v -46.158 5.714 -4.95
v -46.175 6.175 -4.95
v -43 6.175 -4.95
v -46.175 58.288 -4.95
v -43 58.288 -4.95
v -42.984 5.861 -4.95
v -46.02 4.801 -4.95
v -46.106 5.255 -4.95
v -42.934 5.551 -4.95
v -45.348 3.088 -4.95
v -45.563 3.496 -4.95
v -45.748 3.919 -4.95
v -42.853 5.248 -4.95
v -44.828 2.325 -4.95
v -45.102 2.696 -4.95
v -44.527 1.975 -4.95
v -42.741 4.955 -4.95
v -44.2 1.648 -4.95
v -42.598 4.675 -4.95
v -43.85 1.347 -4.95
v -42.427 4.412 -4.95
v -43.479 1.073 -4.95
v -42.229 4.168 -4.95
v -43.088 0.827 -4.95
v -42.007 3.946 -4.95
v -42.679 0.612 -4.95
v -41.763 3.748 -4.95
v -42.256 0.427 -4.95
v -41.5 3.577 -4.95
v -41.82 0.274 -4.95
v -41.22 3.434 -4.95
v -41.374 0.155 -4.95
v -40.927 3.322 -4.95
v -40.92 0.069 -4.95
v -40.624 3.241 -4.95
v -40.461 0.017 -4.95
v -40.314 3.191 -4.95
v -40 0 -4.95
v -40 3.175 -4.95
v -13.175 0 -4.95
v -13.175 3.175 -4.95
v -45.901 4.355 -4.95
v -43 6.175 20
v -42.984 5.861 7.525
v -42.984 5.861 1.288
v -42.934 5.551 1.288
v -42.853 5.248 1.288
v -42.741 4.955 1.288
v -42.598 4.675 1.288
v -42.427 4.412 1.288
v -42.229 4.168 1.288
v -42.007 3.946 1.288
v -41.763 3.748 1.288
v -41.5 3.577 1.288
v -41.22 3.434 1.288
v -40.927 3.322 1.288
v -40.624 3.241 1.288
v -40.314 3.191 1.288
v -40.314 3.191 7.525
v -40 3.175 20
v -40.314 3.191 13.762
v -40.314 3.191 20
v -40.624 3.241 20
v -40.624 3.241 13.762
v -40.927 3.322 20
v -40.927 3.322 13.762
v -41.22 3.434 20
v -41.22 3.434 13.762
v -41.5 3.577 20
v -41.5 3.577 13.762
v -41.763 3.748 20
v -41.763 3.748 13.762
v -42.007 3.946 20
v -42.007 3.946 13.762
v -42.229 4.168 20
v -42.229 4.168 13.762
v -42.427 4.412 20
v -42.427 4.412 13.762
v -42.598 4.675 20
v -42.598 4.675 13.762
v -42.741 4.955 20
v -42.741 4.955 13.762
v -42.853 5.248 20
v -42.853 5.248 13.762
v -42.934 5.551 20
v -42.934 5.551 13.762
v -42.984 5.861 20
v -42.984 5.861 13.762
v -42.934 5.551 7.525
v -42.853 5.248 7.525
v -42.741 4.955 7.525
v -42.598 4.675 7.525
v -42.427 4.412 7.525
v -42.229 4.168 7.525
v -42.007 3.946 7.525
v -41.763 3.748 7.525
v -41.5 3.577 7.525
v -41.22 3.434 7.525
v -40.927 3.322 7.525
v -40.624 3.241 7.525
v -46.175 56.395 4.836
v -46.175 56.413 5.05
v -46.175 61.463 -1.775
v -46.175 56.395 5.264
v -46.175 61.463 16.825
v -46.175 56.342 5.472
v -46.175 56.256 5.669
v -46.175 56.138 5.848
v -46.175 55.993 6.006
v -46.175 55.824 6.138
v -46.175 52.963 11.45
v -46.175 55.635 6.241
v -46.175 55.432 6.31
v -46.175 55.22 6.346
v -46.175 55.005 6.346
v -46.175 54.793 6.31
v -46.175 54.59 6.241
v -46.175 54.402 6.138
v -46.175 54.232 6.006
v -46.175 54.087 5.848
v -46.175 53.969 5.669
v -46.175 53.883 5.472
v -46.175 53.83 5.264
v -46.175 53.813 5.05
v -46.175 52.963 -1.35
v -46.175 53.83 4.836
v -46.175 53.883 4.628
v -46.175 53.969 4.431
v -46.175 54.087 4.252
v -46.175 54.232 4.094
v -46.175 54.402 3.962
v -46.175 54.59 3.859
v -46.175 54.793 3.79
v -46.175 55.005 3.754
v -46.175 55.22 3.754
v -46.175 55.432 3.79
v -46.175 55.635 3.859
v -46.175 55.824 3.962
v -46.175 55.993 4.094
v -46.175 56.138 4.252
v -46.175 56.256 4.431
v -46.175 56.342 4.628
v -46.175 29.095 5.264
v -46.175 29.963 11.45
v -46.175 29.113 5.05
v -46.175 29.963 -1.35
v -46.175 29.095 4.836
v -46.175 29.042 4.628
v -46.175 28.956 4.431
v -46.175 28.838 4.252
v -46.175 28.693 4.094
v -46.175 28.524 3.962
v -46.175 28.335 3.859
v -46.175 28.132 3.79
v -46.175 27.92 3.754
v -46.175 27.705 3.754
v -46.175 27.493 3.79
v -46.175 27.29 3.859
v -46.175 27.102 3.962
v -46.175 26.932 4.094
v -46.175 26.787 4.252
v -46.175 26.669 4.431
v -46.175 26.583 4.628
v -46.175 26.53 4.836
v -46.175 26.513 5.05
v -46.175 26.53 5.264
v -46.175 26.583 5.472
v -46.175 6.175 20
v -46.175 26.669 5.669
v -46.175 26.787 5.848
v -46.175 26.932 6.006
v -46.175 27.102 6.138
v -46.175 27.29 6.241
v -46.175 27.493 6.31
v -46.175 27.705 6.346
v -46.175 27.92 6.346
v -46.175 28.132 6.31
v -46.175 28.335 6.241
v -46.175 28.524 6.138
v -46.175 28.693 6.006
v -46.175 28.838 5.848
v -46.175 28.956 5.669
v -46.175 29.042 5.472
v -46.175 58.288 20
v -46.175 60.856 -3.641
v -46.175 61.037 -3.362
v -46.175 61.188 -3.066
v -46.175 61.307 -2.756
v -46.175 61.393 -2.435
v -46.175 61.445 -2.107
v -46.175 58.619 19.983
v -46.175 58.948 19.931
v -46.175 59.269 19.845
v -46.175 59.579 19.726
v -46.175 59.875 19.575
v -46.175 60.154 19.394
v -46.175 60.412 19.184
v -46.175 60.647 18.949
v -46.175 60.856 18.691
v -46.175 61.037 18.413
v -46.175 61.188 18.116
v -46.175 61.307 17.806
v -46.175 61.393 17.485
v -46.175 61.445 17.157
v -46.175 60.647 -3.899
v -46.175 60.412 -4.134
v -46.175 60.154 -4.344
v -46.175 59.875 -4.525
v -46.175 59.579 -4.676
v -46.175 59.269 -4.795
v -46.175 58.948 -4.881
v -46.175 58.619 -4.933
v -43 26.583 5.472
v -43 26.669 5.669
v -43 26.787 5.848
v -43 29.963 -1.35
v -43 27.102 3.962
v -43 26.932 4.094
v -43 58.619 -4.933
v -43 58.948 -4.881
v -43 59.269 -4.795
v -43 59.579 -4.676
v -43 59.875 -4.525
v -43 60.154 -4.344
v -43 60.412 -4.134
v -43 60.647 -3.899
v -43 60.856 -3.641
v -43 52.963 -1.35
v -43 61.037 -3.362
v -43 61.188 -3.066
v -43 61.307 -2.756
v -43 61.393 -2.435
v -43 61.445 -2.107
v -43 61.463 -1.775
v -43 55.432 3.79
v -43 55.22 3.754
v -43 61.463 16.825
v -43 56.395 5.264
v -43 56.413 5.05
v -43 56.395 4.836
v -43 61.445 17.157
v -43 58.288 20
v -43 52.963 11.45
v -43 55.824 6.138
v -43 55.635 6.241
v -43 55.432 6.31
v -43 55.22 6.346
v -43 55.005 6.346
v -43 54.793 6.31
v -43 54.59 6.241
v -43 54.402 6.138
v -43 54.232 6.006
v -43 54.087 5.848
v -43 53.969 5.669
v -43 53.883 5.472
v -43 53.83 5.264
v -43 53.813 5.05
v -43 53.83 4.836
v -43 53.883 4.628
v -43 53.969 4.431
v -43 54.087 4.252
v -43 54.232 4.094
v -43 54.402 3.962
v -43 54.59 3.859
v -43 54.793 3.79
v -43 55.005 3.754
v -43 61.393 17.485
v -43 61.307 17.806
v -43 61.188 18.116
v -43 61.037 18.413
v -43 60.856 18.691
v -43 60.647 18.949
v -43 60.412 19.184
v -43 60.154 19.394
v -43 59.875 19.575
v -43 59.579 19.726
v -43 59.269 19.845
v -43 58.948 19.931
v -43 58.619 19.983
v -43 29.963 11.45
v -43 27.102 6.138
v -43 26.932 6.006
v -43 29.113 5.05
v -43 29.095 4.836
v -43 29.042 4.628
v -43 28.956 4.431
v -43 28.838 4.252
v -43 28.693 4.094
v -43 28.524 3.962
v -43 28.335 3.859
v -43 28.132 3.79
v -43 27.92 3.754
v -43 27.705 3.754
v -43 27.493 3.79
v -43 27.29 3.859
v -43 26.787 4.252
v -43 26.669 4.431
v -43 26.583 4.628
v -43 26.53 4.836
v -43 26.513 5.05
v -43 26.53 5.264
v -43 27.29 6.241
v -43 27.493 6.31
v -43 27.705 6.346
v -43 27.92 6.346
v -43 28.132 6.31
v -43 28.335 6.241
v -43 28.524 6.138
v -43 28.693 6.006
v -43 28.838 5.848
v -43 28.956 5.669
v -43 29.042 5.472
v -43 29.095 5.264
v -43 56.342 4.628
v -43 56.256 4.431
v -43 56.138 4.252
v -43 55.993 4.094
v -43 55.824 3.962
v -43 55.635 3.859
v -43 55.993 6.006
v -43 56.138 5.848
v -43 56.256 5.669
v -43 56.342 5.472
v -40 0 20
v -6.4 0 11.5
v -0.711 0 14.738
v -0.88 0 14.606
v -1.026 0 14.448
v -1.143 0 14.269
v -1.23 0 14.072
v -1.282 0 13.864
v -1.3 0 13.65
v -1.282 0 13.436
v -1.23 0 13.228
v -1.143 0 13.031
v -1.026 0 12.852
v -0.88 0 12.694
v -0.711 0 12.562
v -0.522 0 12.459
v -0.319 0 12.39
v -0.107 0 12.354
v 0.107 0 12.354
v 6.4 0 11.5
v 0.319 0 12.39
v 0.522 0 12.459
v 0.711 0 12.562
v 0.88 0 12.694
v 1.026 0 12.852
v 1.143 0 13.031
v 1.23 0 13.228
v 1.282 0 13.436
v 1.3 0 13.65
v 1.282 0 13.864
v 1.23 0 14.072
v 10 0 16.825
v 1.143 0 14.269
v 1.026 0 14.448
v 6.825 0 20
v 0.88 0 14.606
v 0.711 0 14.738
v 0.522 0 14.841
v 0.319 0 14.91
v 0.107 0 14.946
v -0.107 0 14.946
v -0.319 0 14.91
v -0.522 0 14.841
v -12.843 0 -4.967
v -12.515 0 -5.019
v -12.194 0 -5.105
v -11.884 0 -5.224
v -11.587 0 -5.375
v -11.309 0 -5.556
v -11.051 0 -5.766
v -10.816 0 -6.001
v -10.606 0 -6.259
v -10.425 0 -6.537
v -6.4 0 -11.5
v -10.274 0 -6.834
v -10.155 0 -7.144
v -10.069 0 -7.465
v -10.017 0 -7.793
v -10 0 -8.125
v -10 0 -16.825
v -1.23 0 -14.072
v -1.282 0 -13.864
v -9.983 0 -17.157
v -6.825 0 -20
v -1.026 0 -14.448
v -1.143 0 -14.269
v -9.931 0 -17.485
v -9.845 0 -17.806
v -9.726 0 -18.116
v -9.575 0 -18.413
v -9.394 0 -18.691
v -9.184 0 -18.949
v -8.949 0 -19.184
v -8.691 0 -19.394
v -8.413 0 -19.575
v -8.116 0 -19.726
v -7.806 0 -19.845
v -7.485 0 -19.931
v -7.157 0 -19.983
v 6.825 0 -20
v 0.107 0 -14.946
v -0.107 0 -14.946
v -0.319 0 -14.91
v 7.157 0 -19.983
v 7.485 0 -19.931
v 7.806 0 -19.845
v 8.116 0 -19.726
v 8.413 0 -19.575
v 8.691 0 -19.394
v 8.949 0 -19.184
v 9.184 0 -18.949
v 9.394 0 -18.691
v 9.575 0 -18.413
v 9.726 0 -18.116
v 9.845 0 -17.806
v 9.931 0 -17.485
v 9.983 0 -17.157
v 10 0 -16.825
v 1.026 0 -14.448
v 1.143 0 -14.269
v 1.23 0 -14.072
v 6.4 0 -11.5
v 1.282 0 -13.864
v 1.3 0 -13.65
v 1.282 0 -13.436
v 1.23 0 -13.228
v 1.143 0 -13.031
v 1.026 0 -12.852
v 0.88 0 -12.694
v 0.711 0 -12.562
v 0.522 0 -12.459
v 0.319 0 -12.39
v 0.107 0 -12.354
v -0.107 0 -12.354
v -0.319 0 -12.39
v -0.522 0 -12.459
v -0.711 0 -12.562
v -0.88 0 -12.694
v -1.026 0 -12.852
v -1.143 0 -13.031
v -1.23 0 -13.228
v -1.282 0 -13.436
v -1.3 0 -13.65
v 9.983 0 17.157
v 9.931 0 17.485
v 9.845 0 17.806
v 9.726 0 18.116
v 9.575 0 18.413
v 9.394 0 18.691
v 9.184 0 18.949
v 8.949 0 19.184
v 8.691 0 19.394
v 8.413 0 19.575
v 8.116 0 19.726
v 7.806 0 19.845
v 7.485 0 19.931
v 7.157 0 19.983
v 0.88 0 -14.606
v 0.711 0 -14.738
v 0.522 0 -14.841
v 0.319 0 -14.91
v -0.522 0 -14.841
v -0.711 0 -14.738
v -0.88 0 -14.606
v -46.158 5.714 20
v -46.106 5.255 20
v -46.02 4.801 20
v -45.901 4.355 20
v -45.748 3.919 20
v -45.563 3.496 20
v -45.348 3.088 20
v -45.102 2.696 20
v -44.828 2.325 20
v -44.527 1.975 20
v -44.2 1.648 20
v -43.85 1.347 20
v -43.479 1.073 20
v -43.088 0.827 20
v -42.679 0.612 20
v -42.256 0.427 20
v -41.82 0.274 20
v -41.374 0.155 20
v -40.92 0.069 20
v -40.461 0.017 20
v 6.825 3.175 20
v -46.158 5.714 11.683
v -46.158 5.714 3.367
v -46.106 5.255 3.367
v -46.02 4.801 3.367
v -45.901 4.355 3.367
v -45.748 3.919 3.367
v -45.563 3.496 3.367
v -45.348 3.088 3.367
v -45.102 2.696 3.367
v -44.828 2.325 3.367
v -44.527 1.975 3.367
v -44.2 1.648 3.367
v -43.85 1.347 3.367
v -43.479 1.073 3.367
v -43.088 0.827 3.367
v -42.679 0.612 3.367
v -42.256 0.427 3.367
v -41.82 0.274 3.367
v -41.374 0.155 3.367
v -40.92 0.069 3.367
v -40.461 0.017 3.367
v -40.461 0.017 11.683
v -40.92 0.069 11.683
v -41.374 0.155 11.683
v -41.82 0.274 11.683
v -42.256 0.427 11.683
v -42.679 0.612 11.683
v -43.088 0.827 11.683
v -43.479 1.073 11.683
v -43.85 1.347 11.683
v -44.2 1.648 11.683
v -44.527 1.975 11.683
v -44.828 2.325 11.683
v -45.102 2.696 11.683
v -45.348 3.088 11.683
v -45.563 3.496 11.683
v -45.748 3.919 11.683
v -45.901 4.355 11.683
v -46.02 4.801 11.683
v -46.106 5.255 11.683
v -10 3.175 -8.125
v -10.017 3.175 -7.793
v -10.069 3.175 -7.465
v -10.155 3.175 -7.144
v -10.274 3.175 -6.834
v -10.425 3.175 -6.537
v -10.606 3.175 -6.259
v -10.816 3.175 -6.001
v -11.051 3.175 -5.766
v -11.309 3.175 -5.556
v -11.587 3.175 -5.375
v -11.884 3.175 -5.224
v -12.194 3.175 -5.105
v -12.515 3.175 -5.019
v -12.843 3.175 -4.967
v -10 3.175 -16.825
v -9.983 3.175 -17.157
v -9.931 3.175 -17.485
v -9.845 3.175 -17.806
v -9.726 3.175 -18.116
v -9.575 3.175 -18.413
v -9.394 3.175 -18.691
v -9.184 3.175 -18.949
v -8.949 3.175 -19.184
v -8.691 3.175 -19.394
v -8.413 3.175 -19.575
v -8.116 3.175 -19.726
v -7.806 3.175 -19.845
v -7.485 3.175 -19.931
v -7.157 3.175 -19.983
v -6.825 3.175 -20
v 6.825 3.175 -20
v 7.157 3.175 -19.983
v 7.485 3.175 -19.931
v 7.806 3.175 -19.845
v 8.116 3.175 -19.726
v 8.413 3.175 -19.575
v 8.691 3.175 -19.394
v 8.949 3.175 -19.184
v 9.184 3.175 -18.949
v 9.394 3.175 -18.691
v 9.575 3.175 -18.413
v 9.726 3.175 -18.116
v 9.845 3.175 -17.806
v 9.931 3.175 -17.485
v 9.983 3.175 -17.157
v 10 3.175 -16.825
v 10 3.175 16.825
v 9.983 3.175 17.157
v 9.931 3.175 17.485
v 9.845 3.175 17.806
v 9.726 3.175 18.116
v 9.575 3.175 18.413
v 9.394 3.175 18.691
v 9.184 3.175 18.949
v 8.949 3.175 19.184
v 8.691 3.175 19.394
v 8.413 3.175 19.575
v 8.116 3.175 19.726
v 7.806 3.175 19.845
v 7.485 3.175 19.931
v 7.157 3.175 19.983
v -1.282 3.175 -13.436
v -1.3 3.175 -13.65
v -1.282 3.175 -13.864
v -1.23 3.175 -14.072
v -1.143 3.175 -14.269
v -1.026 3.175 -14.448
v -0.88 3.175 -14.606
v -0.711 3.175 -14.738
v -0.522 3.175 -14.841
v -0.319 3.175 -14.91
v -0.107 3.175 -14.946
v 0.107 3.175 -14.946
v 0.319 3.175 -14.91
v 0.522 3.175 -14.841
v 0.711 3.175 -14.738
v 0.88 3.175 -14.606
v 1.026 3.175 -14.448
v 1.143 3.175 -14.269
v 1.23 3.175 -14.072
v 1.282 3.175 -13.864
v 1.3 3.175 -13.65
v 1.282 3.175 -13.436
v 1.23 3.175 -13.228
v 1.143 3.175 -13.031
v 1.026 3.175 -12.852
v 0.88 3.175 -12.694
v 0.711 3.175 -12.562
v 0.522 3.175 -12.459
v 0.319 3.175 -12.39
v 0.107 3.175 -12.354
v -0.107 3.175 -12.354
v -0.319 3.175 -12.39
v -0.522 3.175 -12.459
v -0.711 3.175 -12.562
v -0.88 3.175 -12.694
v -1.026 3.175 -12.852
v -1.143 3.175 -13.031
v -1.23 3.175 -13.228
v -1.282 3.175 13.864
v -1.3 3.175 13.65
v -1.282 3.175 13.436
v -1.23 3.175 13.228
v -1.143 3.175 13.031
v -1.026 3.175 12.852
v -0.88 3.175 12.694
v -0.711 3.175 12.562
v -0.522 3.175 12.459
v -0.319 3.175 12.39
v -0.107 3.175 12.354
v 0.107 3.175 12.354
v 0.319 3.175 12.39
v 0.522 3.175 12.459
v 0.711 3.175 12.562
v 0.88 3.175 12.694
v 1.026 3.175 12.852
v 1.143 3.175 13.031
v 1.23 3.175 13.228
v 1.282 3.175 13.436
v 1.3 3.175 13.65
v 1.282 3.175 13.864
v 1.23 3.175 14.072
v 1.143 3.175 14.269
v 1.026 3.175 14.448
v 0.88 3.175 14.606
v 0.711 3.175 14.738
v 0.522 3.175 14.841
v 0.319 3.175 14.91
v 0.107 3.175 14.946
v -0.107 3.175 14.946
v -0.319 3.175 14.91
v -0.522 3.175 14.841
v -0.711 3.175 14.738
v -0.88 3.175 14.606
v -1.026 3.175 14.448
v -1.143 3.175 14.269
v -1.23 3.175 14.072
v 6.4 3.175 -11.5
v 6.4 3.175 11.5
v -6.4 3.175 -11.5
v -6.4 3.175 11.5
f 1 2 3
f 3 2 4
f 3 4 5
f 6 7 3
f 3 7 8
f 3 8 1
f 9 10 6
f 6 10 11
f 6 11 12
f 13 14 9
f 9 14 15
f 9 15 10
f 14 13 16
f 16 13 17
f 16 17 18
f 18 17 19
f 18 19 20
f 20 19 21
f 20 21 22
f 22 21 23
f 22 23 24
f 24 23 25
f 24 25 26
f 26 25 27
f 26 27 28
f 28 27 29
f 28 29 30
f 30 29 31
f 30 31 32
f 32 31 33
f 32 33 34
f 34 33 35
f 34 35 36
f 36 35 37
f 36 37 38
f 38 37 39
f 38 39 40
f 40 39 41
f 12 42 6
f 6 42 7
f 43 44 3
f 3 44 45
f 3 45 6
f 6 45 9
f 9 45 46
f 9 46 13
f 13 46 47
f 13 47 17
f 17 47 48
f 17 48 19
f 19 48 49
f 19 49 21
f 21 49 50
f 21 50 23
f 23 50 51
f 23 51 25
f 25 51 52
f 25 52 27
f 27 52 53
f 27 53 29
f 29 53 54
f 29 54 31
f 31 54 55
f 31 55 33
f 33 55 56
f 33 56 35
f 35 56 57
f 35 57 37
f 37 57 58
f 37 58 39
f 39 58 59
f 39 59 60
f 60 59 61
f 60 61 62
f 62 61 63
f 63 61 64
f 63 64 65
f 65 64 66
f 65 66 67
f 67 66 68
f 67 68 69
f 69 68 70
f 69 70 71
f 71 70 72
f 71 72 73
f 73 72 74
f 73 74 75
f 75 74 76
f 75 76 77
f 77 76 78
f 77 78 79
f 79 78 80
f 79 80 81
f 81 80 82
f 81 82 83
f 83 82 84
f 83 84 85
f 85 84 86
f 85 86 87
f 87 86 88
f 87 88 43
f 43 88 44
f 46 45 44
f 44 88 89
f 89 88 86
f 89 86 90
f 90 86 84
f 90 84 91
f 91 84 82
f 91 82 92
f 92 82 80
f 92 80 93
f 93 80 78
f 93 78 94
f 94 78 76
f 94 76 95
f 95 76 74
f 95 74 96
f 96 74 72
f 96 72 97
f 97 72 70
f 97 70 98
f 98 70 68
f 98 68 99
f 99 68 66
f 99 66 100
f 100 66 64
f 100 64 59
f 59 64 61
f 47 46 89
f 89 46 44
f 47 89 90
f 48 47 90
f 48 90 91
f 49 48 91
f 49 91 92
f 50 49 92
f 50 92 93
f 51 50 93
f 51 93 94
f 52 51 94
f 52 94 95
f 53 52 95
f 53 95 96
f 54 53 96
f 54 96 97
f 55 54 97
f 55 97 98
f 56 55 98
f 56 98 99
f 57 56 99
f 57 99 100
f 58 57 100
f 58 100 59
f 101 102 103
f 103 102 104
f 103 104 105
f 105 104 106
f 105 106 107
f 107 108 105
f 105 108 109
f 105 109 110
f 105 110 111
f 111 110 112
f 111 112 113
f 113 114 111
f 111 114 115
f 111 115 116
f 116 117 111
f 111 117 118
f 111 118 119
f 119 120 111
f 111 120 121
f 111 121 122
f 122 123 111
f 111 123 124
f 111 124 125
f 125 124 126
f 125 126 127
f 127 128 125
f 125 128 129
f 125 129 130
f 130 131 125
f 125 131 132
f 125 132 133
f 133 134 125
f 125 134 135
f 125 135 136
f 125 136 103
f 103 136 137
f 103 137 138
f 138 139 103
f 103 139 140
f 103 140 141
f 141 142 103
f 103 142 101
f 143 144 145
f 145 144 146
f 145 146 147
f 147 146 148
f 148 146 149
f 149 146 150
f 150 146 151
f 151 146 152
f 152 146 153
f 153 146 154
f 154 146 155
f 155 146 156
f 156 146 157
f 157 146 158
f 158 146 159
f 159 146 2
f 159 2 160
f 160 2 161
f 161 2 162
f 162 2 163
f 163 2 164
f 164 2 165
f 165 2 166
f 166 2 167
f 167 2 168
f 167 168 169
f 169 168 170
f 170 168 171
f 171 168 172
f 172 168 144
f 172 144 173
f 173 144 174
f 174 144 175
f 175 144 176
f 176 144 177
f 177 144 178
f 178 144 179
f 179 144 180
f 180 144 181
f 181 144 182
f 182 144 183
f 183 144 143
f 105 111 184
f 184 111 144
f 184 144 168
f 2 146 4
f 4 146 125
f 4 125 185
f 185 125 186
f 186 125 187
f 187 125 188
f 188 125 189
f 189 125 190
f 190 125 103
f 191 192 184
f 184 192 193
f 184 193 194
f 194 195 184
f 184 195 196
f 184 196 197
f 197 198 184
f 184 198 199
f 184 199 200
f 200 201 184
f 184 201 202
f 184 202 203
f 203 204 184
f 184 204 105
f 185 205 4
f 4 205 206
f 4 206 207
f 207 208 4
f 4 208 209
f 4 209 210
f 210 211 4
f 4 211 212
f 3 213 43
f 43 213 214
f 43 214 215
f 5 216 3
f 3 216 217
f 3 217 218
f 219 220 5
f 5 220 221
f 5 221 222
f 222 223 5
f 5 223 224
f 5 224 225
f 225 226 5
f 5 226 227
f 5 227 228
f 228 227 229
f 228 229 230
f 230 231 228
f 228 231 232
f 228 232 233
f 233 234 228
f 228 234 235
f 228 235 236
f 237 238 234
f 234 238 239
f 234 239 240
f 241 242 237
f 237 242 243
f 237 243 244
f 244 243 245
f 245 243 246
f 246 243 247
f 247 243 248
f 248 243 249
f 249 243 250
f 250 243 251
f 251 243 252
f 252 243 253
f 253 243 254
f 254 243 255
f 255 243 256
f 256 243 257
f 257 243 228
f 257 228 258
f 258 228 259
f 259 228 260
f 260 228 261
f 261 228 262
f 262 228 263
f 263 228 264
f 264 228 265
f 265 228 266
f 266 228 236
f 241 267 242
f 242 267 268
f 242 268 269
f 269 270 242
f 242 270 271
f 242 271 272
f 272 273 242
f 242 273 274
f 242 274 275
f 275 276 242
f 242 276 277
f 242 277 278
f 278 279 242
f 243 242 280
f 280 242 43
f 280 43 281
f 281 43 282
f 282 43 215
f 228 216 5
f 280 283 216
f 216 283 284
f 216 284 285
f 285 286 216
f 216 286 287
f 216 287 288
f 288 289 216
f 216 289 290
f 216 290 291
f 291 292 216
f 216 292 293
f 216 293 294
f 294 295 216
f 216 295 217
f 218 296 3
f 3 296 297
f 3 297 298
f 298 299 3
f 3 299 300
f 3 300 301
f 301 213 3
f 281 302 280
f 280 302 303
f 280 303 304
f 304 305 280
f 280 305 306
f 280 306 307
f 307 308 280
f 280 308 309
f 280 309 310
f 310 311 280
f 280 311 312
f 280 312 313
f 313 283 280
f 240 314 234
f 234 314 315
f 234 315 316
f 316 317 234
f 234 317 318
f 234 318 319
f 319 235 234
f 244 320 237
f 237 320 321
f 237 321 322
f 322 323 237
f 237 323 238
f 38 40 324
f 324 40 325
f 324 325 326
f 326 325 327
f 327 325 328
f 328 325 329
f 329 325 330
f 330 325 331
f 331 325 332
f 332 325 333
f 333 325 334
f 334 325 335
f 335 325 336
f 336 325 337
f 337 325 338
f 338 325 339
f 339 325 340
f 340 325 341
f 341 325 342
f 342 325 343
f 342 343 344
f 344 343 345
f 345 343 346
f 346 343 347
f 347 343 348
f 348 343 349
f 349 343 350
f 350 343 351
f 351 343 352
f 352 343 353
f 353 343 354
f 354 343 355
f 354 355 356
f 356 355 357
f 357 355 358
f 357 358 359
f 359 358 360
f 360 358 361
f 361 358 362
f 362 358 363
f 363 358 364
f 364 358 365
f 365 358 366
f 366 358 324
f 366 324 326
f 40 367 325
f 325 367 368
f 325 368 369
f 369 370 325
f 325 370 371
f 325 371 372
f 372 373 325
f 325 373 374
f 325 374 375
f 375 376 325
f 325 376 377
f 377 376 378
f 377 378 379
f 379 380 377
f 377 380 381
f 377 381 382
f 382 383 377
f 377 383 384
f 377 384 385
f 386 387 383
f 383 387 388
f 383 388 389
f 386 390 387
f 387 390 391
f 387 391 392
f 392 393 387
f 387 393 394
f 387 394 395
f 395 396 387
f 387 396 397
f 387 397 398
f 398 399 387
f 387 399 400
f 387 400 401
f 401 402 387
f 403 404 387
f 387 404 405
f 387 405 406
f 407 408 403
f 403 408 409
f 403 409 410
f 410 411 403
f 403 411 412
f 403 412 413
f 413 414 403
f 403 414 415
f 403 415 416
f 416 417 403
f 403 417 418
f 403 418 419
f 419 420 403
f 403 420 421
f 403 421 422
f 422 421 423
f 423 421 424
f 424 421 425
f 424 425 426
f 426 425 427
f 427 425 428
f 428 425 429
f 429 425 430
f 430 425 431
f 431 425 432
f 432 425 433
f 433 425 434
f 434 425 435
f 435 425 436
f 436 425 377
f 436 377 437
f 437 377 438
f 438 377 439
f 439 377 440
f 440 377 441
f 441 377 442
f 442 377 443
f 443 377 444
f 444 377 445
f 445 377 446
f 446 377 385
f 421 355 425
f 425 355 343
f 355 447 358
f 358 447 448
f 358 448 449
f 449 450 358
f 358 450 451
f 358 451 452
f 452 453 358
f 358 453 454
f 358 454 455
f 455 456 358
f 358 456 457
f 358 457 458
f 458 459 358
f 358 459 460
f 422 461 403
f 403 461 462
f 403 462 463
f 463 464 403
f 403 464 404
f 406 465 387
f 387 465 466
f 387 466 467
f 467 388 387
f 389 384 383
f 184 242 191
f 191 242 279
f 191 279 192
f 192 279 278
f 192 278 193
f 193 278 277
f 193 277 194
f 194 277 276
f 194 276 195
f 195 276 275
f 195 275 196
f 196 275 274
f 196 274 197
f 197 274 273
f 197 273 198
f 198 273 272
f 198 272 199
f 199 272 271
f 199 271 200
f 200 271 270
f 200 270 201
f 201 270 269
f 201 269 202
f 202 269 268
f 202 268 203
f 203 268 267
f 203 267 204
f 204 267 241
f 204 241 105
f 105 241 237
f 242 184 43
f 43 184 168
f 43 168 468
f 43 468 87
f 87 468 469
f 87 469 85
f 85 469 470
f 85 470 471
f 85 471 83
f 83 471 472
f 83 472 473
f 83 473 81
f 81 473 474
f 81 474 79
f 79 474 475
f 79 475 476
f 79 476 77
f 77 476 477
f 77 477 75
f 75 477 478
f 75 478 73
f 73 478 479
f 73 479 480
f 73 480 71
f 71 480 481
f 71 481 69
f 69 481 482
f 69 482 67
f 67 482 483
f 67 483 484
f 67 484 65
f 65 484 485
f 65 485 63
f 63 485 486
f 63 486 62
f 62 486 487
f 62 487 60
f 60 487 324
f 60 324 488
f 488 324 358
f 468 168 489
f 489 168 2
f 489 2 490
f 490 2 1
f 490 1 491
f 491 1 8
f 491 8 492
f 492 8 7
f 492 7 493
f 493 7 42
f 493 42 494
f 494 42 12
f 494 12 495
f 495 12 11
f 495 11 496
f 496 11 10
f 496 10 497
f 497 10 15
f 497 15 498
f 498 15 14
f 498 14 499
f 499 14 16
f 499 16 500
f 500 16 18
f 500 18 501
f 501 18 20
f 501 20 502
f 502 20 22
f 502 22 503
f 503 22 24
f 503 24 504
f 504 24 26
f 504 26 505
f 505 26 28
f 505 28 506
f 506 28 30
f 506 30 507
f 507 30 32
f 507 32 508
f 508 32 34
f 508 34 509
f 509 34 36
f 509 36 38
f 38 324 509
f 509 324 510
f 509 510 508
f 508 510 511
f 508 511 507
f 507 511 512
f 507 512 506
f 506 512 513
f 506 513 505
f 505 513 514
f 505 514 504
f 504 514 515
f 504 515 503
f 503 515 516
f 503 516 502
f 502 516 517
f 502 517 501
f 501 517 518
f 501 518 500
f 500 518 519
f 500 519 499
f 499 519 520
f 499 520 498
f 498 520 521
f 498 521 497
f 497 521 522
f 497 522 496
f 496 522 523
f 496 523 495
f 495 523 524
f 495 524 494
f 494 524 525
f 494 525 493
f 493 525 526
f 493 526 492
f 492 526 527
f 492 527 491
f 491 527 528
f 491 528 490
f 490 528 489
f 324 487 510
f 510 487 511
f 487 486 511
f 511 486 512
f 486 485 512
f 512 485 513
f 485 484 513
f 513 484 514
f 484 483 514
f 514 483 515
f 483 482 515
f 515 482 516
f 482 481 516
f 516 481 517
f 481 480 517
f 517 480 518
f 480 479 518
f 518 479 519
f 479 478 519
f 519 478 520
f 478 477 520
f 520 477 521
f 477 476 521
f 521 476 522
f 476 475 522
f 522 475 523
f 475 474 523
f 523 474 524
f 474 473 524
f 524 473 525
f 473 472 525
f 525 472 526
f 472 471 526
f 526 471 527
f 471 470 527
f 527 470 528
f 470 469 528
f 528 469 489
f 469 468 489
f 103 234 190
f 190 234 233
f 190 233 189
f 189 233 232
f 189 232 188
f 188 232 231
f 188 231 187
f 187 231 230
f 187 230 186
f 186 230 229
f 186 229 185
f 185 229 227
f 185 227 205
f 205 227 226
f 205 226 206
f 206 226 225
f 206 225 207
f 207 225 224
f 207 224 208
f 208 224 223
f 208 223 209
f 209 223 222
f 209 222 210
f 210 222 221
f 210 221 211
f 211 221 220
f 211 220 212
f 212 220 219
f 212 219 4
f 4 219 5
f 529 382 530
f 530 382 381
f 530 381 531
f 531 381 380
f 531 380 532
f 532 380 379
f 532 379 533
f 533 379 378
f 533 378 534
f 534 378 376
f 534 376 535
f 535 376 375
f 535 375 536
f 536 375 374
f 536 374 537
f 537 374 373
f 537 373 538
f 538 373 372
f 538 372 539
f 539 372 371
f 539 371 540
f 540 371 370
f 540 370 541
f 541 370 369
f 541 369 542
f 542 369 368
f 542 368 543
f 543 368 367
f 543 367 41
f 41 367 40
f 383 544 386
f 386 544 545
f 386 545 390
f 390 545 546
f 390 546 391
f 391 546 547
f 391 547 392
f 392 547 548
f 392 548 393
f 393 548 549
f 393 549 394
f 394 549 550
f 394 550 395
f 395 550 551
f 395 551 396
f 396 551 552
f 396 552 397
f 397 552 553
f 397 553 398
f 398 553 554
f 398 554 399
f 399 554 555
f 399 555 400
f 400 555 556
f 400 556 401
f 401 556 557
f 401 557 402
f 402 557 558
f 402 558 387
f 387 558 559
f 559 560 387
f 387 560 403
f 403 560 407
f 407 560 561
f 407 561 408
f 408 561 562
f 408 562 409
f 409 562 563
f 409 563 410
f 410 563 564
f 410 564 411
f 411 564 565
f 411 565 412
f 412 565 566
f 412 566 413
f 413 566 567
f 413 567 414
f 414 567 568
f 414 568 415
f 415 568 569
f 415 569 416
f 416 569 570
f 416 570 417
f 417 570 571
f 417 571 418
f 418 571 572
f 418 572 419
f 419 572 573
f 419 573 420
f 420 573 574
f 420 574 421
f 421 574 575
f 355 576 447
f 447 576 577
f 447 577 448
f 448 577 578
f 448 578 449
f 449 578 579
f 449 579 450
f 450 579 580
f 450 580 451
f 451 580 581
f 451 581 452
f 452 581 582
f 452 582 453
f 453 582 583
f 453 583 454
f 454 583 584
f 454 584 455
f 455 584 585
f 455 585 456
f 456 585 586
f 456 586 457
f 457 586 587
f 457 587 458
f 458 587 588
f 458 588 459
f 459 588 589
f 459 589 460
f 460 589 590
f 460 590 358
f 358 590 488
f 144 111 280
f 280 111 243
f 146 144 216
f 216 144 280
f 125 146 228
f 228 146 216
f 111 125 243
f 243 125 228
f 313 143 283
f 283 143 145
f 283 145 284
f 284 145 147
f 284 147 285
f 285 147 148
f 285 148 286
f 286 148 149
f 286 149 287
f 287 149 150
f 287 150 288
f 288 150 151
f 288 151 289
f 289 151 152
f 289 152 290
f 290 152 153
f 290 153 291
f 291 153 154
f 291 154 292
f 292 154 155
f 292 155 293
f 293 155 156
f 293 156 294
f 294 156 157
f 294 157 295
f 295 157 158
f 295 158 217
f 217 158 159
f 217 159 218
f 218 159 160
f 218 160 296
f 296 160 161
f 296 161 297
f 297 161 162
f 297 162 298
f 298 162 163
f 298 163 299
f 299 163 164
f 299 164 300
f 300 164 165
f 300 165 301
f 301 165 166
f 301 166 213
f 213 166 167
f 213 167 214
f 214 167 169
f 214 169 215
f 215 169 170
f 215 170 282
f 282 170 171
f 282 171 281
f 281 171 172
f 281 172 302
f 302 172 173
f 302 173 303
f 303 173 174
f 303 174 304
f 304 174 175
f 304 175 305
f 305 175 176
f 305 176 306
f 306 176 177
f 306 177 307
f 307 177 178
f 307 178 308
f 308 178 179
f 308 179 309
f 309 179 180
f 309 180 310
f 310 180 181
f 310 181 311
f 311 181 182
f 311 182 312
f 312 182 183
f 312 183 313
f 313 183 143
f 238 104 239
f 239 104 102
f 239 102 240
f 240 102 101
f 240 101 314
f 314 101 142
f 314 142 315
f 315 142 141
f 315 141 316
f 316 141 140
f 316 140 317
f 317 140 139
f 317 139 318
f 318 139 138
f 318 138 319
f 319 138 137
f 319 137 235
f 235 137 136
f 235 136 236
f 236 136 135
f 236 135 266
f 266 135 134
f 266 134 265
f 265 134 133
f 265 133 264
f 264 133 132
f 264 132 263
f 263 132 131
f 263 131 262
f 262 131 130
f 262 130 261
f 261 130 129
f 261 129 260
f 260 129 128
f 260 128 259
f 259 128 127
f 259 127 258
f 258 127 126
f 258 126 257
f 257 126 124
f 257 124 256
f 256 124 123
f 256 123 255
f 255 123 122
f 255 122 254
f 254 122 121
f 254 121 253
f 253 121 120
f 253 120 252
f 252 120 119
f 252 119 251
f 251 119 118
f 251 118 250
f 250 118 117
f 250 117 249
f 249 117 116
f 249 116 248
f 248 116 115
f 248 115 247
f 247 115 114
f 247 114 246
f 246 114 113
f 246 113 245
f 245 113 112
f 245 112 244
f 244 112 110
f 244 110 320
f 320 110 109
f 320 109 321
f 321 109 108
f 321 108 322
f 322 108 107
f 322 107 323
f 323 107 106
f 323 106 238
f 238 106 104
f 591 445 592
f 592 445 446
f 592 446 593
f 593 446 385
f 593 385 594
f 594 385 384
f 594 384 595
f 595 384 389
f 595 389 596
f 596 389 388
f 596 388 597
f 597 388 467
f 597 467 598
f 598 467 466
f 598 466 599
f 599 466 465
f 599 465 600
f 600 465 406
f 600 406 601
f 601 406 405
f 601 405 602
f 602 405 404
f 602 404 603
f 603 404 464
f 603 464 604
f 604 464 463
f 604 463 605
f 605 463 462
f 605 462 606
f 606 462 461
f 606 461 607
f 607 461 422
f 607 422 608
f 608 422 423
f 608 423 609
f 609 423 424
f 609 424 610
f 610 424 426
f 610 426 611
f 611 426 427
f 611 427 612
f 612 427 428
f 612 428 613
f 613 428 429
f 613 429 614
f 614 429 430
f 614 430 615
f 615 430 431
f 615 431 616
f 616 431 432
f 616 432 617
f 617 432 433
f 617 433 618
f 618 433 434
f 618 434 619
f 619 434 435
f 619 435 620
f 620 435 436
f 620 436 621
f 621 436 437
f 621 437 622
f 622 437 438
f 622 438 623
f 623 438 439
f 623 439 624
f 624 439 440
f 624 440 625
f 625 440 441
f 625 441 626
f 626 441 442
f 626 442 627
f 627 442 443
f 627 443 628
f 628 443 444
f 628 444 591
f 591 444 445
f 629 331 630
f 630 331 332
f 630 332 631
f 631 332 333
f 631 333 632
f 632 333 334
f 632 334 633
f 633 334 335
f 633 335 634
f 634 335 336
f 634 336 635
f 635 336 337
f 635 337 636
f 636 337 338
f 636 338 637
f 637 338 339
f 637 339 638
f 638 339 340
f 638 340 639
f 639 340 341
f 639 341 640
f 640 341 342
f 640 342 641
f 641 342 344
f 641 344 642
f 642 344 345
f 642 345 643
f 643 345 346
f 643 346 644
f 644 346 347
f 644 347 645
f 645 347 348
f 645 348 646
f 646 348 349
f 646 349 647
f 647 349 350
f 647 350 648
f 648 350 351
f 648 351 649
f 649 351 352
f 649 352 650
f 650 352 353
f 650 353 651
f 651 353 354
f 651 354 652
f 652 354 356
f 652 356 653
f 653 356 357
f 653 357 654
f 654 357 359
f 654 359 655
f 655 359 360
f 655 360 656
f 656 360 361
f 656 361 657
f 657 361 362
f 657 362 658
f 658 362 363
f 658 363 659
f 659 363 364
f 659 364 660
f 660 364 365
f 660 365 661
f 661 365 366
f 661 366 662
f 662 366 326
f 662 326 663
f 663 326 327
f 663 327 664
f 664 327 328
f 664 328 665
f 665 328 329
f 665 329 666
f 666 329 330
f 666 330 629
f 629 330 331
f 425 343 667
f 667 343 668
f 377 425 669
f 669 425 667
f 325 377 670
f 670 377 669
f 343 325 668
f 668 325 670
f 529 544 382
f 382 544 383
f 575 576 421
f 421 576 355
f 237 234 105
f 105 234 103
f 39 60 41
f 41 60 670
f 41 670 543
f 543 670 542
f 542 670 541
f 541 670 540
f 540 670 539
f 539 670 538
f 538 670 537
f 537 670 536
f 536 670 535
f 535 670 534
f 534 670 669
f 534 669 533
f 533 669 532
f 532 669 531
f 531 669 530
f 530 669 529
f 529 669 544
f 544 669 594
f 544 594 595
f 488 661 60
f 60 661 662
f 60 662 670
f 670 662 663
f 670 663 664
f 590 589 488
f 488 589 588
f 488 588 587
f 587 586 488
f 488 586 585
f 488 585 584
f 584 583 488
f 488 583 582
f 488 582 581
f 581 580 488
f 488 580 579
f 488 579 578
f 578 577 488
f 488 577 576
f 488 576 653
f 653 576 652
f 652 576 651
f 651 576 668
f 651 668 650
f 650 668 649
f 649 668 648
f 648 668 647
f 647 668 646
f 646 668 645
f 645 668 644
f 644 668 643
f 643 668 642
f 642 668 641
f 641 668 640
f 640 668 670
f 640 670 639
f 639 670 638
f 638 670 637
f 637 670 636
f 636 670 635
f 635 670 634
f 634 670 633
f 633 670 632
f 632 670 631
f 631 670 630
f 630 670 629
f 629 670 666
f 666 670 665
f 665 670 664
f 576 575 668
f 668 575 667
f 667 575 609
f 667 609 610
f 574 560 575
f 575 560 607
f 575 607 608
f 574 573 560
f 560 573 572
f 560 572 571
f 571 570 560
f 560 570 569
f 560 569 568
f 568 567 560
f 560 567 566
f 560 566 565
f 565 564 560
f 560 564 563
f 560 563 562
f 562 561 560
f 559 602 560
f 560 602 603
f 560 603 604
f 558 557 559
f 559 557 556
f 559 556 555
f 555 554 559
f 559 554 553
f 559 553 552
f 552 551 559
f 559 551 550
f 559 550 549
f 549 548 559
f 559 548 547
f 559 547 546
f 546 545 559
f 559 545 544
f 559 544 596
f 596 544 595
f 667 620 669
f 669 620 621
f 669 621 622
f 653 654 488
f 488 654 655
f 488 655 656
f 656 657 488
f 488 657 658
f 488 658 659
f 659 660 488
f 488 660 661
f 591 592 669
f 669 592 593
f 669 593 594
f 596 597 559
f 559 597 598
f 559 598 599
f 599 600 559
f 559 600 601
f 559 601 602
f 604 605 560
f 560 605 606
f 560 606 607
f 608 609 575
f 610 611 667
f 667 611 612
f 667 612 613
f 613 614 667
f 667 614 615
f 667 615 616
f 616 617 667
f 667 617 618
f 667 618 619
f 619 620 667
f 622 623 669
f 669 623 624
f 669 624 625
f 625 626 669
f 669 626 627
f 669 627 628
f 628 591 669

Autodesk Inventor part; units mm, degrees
ref_plane "YZ Plane" through (0, 0, 0) normal (1, 0, 0) x (0, 1, 0)
ref_plane "XZ Plane" through (0, 0, 0) normal (0, 1, 0) x (-1, 0, 0)
ref_plane "XY Plane" through (0, 0, 0) normal (0, 0, 1) x (1, 0, 0)
sketch "Sketch2" plane through (0, 0, 0) normal (0, 1, 0) x (-1, 0, 0)
  line L0 (-6.4, 11.5) -> (6.4, 11.5)
  line L1 (6.4, 11.5) -> (6.4, -11.5)
  line L2 (6.4, -11.5) -> (-6.4, -11.5)
  line L3 (-6.4, -11.5) -> (-6.4, 11.5)
  line L4 (-6.4, 11.5) -> (6.4, -11.5) construction
  line L5 (6.4, 11.5) -> (-6.4, -11.5) construction
  circle A0 centre (0, 0) radius 13.65 construction
  line L6 (0, 0) -> (0, -13.65) construction
  circle A1 centre (0, -13.65) radius 1.3
  circle A2 centre (0, 13.65) radius 1.3
  line L7 (-10, 20) -> (10, 20)
  line L8 (10, 20) -> (10, -20)
  line L9 (10, -20) -> (-10, -20)
  line L10 (-10, -20) -> (-10, 20)
  line L11 (-10, 20) -> (10, -20) construction
  line L12 (10, 20) -> (-10, -20) construction
  line L13 (-10, 5.05) -> (10, 5.05) construction
  line L14 (10, 15.05) -> (100, 15.05)
  line L15 (100, 15.05) -> (100, -4.95)
  line L16 (100, -4.95) -> (10, -4.95)
  line L17 (10, -4.95) -> (10, 15.05)
  line L18 (100, 5.05) -> (10, 5.05) construction
  line L19 (91.5, 11.45) -> (68.5, 11.45)
  line L20 (68.5, 11.45) -> (68.5, -1.35)
  line L21 (68.5, -1.35) -> (91.5, -1.35)
  line L22 (91.5, -1.35) -> (91.5, 11.45)
  line L23 (91.5, 11.45) -> (68.5, -1.35) construction
  line L24 (68.5, 11.45) -> (91.5, -1.35) construction
  circle A3 centre (80, 5.05) radius 13.65 construction
  circle A4 centre (93.65, 5.05) radius 1.3
  circle A5 centre (66.35, 5.05) radius 1.3
  line L25 (100, 15.05) -> (10, 15.05)
  line L26 (10, 15.05) -> (10, 20)
  line L27 (10, 20) -> (100, 20)
  line L28 (100, 20) -> (100, 15.05)
  dimension "d2" = 27.3
  dimension "d20" = 27.3
  dimension "d0" = 12.8
  dimension "d1" = 23
  dimension "d3" = 2.6
  dimension "d6" = 360
  dimension "d8" = 20
  dimension "d9" = 40
  dimension "d11" = 8.6
  dimension "d12" = 90
  dimension "d14" = 20
  dimension "d18" = 12.8
  dimension "d19" = 23
  dimension "d21" = 2.6
  dimension "d24" = 360
  dimension "d26" = 20
extrude "Extrusion1" add sketch "Sketch2" along normal blind 3.175
fillet "Fillet1" radius 3.175 6 edges at (10, 1.5875, 20) (10, 1.5875, -20) (-10, 1.5875, -20) (-10, 1.5875, -4.95) (-100, 1.5875, -4.95) (-100, 1.5875, 20)
sketch "Sketch3" plane through (0, 3.175, 0) normal (0, 1, 0) x (1, 0, 0)
  line L0 (-96.825, -15.05) -> (-13.175, -15.05) projected
  line L1 (-40, -15.05) -> (-40, 4.95)
  line L2 (-13.175, 4.95) -> (-96.825, 4.95) projected
  line L3 (10, -16.825) -> (10, 16.825) projected
  point P0 (0, 0)
  dimension "d27" = 50
bend part "Bend Part1" radius 3 angle 90 line through (-40, 3.175, 15.05) along (0, 0, -1) centre toward (0, 1, 0) moving side (-1, 0, 0) both sides no
equation "\"d20\" = d2"
equation "\"d18\" = d0"
equation "\"d19\" = d1"
equation "\"d21\" = d3"
properties part number "Midplate"
